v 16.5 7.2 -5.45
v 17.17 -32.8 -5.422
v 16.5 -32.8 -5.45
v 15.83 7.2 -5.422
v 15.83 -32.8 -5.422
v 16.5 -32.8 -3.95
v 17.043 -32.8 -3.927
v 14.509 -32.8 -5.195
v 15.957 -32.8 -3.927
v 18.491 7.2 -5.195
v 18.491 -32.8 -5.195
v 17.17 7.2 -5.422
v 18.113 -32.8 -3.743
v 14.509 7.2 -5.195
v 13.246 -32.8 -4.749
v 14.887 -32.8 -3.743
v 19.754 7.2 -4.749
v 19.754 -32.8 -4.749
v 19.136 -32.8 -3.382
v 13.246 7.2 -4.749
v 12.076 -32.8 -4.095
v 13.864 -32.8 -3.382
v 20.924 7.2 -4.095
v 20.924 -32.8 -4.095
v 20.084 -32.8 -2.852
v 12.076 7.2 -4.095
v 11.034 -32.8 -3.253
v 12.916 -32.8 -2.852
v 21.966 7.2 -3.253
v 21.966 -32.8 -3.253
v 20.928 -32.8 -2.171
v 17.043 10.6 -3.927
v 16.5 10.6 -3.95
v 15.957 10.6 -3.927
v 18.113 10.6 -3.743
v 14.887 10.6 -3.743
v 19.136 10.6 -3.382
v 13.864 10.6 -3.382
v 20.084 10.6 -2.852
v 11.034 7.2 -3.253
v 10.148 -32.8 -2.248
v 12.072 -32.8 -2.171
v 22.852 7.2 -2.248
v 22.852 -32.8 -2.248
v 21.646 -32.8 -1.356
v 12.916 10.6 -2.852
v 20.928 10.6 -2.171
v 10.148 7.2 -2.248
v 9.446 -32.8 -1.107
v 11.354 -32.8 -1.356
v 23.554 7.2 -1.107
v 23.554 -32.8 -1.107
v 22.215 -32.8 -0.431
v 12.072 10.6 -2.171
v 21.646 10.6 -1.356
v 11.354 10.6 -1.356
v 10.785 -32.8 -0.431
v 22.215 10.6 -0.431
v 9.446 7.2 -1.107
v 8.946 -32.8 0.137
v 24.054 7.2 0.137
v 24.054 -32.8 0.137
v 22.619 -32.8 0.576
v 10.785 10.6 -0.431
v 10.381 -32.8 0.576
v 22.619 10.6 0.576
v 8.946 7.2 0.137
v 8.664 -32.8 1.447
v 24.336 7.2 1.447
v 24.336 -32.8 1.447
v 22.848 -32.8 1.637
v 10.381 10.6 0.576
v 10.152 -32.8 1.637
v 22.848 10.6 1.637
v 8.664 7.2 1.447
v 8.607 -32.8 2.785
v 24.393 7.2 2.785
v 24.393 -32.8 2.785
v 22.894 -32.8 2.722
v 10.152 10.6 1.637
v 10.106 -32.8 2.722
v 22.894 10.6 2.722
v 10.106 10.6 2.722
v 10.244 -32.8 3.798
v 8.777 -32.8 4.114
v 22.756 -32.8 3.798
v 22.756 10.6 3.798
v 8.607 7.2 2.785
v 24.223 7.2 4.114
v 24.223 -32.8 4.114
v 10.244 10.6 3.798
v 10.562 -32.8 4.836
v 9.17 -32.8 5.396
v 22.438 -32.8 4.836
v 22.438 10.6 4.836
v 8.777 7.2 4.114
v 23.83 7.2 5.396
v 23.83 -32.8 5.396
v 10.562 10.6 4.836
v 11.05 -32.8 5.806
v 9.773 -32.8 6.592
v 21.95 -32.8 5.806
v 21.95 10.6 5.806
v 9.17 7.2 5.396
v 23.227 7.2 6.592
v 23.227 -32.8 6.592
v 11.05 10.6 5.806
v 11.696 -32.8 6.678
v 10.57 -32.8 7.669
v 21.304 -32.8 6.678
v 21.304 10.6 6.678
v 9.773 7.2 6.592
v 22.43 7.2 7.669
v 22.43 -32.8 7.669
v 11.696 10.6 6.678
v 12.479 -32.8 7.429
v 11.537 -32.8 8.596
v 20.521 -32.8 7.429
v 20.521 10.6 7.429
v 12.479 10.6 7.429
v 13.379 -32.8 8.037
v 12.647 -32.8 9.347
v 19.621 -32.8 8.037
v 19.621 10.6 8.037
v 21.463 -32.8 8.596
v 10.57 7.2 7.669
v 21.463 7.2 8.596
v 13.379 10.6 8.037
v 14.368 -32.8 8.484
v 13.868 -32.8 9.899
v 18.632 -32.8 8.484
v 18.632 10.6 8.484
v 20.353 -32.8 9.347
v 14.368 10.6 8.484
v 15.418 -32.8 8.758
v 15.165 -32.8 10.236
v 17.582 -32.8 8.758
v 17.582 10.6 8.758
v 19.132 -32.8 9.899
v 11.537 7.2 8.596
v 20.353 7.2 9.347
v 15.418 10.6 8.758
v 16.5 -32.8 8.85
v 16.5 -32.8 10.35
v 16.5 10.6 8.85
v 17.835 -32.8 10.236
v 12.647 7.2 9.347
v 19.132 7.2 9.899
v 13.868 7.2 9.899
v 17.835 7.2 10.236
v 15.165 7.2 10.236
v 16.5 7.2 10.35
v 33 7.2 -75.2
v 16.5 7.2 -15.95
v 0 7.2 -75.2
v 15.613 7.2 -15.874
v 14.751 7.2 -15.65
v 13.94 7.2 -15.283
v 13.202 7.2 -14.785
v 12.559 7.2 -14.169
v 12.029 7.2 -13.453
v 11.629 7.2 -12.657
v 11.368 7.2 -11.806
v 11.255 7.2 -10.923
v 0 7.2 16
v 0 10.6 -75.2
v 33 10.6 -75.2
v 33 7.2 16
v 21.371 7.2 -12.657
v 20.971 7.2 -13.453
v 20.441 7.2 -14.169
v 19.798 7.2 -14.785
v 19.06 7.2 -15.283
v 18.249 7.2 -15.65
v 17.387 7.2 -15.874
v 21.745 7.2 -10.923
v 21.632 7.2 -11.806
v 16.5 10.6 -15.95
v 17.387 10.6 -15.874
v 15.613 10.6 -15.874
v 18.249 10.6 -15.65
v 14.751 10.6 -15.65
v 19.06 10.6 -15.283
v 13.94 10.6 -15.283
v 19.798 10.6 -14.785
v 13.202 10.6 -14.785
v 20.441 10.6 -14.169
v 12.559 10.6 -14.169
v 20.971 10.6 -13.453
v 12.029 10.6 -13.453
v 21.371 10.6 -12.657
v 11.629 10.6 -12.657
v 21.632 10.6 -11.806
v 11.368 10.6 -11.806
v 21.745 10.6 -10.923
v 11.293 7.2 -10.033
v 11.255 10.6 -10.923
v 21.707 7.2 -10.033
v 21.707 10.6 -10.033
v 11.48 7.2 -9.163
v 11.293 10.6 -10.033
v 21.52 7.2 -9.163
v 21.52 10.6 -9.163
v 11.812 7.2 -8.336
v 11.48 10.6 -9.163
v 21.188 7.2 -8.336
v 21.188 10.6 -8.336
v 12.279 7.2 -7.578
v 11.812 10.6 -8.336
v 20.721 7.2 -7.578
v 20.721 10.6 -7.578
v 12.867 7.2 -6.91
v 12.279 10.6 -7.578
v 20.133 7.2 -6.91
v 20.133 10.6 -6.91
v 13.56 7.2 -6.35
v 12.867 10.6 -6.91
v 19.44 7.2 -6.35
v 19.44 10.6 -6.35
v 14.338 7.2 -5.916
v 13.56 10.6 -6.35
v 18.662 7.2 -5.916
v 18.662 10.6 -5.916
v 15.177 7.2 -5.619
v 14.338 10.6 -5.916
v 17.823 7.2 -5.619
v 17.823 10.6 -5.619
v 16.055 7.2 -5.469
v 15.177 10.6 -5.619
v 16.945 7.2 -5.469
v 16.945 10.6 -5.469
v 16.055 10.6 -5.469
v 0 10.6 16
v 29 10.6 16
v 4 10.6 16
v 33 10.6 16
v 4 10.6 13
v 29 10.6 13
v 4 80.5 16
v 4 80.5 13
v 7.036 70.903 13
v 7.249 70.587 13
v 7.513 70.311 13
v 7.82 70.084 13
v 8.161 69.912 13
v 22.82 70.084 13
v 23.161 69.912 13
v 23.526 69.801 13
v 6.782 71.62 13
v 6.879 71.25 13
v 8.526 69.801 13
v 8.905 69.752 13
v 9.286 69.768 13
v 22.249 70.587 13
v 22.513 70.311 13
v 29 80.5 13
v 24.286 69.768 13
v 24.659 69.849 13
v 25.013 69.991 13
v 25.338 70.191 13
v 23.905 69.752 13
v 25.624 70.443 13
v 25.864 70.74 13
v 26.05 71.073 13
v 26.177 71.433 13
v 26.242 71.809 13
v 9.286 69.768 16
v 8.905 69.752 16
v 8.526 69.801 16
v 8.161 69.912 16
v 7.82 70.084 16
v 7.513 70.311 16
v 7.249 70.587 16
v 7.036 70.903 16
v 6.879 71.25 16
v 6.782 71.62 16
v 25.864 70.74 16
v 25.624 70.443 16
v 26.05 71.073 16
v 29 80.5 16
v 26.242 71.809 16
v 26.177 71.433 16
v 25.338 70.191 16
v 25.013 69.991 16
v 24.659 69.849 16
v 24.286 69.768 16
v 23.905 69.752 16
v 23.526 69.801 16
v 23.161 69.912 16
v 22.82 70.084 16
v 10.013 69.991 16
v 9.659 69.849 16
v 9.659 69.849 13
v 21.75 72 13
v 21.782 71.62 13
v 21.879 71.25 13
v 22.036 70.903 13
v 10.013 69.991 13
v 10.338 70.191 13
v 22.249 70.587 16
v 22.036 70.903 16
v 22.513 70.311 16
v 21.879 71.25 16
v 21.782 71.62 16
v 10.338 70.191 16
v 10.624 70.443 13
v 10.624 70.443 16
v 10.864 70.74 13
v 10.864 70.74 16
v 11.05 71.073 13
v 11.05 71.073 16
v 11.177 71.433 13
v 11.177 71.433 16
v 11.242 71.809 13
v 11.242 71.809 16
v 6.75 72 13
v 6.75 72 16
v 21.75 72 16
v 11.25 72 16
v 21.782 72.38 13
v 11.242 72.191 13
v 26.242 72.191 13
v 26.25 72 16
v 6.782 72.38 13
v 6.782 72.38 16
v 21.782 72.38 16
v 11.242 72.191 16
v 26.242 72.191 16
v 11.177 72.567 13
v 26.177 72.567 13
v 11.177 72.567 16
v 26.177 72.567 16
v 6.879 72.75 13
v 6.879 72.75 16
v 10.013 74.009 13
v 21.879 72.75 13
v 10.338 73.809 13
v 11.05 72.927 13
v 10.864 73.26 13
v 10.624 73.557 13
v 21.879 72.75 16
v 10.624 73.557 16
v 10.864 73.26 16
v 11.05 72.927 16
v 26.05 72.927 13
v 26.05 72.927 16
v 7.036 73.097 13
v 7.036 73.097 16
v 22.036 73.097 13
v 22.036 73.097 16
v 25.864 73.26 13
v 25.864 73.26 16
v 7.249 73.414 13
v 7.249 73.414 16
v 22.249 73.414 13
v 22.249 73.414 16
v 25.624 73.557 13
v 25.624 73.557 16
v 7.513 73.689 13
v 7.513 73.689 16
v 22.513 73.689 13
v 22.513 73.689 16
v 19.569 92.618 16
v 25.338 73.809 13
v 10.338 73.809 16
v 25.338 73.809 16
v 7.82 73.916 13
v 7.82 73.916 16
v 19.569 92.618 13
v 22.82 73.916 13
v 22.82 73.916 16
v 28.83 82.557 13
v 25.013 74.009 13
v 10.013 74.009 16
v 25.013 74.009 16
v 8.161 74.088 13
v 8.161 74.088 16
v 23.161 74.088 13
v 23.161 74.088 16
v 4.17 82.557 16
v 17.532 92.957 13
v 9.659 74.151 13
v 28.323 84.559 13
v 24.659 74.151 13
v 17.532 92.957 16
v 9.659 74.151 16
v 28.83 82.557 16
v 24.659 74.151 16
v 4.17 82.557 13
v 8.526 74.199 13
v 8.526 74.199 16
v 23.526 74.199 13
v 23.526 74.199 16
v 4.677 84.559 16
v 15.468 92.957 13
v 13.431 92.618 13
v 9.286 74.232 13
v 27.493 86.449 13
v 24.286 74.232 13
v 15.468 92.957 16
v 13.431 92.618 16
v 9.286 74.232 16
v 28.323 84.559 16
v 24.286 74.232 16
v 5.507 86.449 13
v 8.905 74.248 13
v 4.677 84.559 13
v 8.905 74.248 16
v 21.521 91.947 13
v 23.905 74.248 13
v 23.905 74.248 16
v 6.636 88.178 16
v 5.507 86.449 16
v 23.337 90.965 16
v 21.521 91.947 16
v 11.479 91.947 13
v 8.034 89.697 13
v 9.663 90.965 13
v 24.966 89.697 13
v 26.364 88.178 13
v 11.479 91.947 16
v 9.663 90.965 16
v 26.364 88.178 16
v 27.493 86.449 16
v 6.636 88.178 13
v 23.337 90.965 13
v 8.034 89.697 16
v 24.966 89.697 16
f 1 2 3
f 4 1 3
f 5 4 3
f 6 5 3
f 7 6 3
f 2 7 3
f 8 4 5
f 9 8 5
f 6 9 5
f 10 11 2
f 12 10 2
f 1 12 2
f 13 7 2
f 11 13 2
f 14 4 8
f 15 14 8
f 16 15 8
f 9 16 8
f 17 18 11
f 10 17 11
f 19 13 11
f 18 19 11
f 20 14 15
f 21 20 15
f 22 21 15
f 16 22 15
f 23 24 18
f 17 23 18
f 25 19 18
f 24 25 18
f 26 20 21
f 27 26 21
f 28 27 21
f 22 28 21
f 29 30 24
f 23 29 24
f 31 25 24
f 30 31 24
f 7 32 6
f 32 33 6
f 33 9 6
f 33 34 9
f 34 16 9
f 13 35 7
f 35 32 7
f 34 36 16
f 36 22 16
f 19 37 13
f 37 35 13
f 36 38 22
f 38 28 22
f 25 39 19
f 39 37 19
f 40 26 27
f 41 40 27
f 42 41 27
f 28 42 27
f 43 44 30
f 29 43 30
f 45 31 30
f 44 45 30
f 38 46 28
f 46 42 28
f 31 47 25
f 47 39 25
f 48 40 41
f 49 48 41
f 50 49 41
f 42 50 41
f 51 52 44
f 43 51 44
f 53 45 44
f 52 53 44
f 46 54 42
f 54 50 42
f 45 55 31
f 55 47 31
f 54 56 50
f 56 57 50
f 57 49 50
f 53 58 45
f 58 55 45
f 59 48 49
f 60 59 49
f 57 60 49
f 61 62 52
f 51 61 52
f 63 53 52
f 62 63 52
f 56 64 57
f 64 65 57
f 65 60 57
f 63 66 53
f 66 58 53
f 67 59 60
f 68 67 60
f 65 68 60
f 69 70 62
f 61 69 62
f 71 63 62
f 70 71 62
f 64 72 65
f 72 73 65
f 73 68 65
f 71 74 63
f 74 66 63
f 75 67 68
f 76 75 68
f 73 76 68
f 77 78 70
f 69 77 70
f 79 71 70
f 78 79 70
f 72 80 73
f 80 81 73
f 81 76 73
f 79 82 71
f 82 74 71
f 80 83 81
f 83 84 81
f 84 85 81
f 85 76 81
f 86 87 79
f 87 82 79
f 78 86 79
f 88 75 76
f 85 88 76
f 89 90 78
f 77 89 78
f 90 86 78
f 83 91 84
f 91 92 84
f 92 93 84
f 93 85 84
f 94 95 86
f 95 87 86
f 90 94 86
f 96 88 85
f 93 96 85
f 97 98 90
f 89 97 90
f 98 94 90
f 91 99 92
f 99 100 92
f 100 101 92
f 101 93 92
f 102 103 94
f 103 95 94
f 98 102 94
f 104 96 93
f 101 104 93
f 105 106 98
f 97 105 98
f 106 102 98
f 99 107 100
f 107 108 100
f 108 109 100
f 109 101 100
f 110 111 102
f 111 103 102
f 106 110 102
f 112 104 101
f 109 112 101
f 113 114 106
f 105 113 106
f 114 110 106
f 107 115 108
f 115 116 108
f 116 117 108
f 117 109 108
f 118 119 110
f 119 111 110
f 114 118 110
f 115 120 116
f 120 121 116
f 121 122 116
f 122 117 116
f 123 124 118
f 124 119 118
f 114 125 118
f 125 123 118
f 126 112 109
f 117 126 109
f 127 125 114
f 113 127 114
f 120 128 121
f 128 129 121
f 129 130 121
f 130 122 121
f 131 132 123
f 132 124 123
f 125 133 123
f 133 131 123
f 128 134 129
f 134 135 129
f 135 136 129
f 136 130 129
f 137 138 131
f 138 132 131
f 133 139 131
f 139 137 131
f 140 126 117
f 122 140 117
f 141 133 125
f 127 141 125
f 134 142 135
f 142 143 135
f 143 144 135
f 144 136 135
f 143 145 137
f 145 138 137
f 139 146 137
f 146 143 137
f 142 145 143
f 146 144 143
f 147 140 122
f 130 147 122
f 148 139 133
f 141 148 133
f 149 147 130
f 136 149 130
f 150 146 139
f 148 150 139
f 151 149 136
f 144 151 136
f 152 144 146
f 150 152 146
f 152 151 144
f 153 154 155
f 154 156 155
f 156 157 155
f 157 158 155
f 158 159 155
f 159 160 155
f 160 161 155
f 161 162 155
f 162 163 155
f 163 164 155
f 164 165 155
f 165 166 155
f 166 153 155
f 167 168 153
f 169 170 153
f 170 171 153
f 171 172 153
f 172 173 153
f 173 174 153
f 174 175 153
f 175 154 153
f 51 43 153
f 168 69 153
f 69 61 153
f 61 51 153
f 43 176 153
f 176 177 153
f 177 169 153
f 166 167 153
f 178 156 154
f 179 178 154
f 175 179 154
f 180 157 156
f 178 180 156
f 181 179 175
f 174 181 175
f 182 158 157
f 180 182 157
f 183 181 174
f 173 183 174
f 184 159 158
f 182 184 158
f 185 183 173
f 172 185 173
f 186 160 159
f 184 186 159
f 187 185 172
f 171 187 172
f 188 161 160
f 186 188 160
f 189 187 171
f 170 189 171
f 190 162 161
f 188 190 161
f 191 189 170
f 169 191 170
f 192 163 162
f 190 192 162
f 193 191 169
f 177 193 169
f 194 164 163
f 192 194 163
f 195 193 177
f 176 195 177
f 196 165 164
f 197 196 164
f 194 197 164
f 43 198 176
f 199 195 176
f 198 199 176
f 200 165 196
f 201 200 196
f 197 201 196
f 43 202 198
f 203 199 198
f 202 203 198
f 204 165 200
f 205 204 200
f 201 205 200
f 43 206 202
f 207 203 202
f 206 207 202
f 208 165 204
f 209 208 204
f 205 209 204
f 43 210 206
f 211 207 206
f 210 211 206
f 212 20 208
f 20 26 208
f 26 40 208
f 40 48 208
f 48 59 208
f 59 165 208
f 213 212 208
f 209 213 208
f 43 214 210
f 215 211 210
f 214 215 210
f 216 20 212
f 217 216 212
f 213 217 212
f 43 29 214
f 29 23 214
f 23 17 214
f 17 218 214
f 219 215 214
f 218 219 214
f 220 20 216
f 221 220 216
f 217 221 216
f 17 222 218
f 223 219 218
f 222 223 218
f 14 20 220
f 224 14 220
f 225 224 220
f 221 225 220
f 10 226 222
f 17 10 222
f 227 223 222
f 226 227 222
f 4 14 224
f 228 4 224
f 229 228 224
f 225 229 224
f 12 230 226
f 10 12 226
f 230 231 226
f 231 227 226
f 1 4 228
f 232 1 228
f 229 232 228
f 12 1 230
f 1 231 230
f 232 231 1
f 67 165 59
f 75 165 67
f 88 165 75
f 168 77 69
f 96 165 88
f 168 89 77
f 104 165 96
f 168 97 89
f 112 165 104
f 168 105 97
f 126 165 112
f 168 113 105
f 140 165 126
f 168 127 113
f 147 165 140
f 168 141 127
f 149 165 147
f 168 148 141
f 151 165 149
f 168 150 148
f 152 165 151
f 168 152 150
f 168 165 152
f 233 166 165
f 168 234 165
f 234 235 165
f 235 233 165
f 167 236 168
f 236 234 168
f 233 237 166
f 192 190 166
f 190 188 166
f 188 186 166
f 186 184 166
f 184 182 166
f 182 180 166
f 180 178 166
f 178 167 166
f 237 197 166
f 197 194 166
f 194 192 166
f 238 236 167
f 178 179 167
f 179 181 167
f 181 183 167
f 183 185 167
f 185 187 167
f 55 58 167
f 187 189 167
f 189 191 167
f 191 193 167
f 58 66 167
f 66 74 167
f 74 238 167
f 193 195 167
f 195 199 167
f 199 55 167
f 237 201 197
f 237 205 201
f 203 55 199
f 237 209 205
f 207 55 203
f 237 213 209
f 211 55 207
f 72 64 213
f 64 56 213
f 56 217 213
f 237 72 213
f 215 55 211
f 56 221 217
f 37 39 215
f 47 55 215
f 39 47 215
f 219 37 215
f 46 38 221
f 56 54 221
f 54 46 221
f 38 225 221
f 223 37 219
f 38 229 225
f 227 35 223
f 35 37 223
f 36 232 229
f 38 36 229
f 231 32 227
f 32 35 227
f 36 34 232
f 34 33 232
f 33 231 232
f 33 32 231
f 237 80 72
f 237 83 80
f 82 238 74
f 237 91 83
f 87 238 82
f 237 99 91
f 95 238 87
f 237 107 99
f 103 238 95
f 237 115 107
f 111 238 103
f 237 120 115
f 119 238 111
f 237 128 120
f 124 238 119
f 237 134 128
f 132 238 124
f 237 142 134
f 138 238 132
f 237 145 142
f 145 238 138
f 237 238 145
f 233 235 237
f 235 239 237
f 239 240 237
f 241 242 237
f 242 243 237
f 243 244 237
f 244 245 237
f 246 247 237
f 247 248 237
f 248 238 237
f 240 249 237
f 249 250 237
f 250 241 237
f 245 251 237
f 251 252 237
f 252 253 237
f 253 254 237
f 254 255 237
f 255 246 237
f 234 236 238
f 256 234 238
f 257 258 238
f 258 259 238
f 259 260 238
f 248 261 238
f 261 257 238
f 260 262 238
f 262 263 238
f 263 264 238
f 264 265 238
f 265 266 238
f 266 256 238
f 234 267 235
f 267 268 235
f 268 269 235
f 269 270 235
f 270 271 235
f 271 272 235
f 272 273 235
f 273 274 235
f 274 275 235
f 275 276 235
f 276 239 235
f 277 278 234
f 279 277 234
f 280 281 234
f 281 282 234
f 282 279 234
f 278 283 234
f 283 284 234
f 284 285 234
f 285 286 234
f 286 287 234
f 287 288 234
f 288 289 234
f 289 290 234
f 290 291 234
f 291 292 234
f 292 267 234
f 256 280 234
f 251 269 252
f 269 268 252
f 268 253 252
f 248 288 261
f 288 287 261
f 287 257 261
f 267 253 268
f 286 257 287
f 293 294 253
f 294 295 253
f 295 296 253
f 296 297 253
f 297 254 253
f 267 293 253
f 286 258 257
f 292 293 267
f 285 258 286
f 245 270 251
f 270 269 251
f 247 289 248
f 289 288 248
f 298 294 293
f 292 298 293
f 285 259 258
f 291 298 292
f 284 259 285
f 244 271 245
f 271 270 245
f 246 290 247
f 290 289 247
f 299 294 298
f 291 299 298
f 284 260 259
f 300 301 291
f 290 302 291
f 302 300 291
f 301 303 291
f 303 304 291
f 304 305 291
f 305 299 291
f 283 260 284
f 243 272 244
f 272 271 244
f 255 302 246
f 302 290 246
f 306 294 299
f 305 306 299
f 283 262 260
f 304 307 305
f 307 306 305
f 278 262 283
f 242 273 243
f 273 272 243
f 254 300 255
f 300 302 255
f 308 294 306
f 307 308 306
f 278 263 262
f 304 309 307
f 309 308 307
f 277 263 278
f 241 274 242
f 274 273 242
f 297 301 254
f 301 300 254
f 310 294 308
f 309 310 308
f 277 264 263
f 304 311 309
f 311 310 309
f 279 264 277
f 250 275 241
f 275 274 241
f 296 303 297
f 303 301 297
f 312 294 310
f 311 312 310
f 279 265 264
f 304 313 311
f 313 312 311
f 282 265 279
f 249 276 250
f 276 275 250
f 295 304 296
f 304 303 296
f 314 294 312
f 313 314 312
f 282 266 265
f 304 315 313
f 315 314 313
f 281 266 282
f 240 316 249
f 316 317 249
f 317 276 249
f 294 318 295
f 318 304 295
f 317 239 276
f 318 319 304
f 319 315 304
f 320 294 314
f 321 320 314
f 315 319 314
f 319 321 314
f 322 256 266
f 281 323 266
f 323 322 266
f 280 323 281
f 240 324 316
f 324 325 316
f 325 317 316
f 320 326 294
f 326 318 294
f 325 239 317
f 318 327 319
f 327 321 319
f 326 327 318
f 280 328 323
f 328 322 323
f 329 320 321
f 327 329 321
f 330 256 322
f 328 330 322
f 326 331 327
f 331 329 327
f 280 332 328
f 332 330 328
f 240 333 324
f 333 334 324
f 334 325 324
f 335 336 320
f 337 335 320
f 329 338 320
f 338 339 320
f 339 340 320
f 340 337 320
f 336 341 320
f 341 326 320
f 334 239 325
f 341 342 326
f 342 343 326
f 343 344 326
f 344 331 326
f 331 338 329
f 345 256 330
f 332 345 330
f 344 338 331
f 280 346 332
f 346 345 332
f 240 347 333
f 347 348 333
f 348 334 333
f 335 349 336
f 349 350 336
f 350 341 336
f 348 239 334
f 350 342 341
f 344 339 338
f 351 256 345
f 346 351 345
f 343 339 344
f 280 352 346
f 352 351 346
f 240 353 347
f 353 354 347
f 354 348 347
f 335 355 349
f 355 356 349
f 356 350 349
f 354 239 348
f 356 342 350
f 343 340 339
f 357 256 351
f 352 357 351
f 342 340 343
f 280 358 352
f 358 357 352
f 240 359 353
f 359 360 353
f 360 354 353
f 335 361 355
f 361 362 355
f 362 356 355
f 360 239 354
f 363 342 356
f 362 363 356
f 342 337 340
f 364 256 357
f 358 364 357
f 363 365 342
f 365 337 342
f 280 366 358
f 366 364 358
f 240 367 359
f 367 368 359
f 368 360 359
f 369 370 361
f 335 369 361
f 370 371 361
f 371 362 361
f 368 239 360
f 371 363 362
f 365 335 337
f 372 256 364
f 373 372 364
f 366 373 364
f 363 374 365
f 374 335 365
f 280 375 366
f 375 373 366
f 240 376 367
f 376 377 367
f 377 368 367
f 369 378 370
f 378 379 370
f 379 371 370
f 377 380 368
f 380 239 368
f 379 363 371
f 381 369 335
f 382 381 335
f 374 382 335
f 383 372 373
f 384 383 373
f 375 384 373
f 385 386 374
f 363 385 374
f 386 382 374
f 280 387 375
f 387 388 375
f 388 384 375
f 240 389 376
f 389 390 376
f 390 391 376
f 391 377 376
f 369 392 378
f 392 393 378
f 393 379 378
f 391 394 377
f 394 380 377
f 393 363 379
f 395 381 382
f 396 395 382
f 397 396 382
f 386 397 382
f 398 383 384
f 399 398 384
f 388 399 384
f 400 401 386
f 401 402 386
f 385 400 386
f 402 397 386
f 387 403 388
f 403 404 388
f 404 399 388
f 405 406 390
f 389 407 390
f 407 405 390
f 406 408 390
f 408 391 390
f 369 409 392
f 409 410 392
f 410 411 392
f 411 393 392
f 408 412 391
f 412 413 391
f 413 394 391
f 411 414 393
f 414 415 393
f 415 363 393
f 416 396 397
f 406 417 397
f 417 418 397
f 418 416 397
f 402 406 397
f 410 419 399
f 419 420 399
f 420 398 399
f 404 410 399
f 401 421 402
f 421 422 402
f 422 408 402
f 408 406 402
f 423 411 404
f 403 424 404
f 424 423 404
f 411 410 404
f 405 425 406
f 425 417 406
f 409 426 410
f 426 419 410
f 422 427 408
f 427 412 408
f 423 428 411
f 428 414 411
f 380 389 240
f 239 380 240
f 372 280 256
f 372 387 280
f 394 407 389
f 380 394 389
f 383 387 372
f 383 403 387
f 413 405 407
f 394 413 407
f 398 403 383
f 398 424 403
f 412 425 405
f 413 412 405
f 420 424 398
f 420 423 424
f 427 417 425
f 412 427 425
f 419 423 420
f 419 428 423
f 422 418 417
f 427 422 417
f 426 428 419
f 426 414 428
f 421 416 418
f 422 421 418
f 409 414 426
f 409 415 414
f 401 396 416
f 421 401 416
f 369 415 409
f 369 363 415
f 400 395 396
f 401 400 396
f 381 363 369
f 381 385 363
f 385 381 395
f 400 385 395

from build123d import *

# Parameters (mm, degrees)
SKETCH1_W            = 4
SKETCH1_H            = 80.5
BOSS_EXTRUDE1_DEPTH  = 71
BOSS_EXTRUDE2_START  = -4
BOSS_EXTRUDE2_DEPTH  = 4
BOSS_EXTRUDE3_DEPTH  = 34.2
CUT_EXTRUDE1_DEPTH   = 13
CUT_EXTRUDE2_DEPTH   = 13
SKETCH6_R            = 1.7
CUT_EXTRUDE3_DEPTH   = 13
SKETCH7_R            = 3.25
CUT_EXTRUDE4_DEPTH   = 2.5
BOSS_EXTRUDE4_DEPTH  = 44.5
SKETCH10_W           = 46.002383675
SKETCH10_H           = 61.711229379
CUT_EXTRUDE5_DEPTH   = 42
FILLET1_R            = 18
BOSS_EXTRUDE5_DEPTH  = 4
FILLET3_R            = 16.2
FILLET4_R            = 14
CUT_EXTRUDE6_DEPTH   = 10.6
BOSS_EXTRUDE6_START  = 4
BOSS_EXTRUDE6_DEPTH  = 4
CUT_EXTRUDE7_DEPTH   = 148
BOSS_EXTRUDE7_DEPTH  = 3
CUT_EXTRUDE8_DEPTH   = 14
SKETCH17_R           = 2.25
CUT_EXTRUDE9_DEPTH   = 14
SKETCH18_W           = 25
SKETCH18_H           = 92.2
BOSS_EXTRUDE8_DEPTH  = 4
SKETCH19_W           = 4
SKETCH19_H           = 92.2
BOSS_EXTRUDE9_DEPTH  = 4
SKETCH20_R           = 5.25
CUT_EXTRUDE10_DEPTH  = 4
SKETCH21_W           = 33
SKETCH21_H           = 92.2
CUT_EXTRUDE11_DEPTH  = 0.6
SKETCH22_R           = 5.25
CUT_EXTRUDE12_DEPTH  = 3.4
BOSS_EXTRUDE10_DEPTH = 40
SKETCH24_R           = 6.4
CUT_EXTRUDE13_DEPTH  = 3.4
BOSS_EXTRUDE11_DEPTH = 15
SKETCH26_W           = 10
SKETCH26_H           = 1.5
BOSS_EXTRUDE12_DEPTH = 15
CUT_EXTRUDE14_DEPTH  = 15
SKETCH28_W           = 33
SKETCH28_H           = 3.4
CUT_EXTRUDE15_DEPTH  = 1


with BuildPart() as part:
    # Sketch1 → Boss-Extrude1 (new body)
    with BuildSketch(Plane.XY):
        with Locations((2, 40.25)):
            Rectangle(SKETCH1_W, SKETCH1_H)
        with BuildLine():
            Line((0, 80.5), (4, 80.5))
            ThreePointArc((4, 80.5), (16.5, 93), (29, 80.5))
            Line((29, 80.5), (33, 80.5))
            ThreePointArc((33, 80.5), (16.5, 97), (0, 80.5))
        make_face()
        with Locations((31, 40.25)):
            Rectangle(SKETCH1_W, SKETCH1_H)
    extrude(amount=BOSS_EXTRUDE1_DEPTH)

    # Sketch2 → Boss-Extrude2 (add)
    with BuildSketch(Plane.XY.offset(71).offset(BOSS_EXTRUDE2_START)):
        with BuildLine():
            Line((33, 48.5), (0, 48.5))
            Line((0, 48.5), (0, 80.5))
            ThreePointArc((0, 80.5), (16.5, 97), (33, 80.5))
            Line((33, 80.5), (33, 48.5))
        make_face()
    extrude(amount=BOSS_EXTRUDE2_DEPTH)

    # Sketch3 → Boss-Extrude3 (add)
    with BuildSketch(Plane(origin=(0, 0, 67), x_dir=(-1, 0, 0), z_dir=(0, 0, -1))):
        Polygon((-33, 0), (-33, 48.5), (-29, 48.5), (-4, 48.5), (0, 48.5), (0, 0), (-3.837905566, 0), (-4, 44.5), (-29, 44.5), (-29.162094434, 0), align=None)
    extrude(amount=-BOSS_EXTRUDE3_DEPTH)

    # Sketch4 → Cut-Extrude1 (cut)
    with BuildSketch(Plane(origin=(0, 0, 0), x_dir=(-1, 0, 0), z_dir=(0, 0, -1))):
        with BuildLine():
            Line((-4, 80.5), (-4, 0))
            Line((-4, 0), (0, 0))
            Line((0, 0), (0, 80.5))
            ThreePointArc((0, 80.5), (-16.5, 97), (-33, 80.5))
            Line((-33, 80.5), (-33, 0))
            Line((-33, 0), (-29, 0))
            Line((-29, 0), (-29, 80.5))
            ThreePointArc((-29, 80.5), (-16.5, 93), (-4, 80.5))
        make_face()
    extrude(amount=-CUT_EXTRUDE1_DEPTH, mode=Mode.SUBTRACT)

    # Sketch5 → Cut-Extrude2 (cut)
    with BuildSketch(Plane.XY.offset(71)):
        with BuildLine():
            ThreePointArc((26.5, 80.5), (16.5, 90.5), (6.5, 80.5))
            Line((6.5, 80.5), (26.5, 80.5))
        make_face()
        with BuildLine():
            Line((26.5, 80.5), (6.5, 80.5))
            ThreePointArc((6.5, 80.5), (16.5, 70.5), (26.5, 80.5))
        make_face()
    extrude(amount=-CUT_EXTRUDE2_DEPTH, mode=Mode.SUBTRACT)

    # Sketch6 → Cut-Extrude3 (cut)
    with BuildSketch(Plane.XY.offset(71)):
        with Locations((6.5, 70.5)):
            Circle(SKETCH6_R)
        with BuildLine():
            ThreePointArc((28.2, 70.5), (26.5, 72.2), (24.8, 70.5))
            Line((24.8, 70.5), (28.2, 70.5))
        make_face()
        with BuildLine():
            Line((28.2, 70.5), (24.8, 70.5))
            ThreePointArc((24.8, 70.5), (26.5, 68.8), (28.2, 70.5))
        make_face()
    extrude(amount=-CUT_EXTRUDE3_DEPTH, mode=Mode.SUBTRACT)

    # Sketch7 → Cut-Extrude4 (cut)
    with BuildSketch(Plane.XY.offset(71)):
        with Locations((6.5, 70.5)):
            Circle(SKETCH7_R)
        with Locations((26.5, 70.5)):
            Circle(SKETCH7_R)
    extrude(amount=-CUT_EXTRUDE4_DEPTH, mode=Mode.SUBTRACT)

    # Sketch9 → Boss-Extrude4 (add)
    with BuildSketch(Plane.XZ):
        Polygon((29.162094434, 101.2), (29.162094434, 71), (29, 71), (29, 120), align=None)
        Polygon((4, 120), (3.837905566, 101.2), (3.837905566, 71), (4, 71), align=None)
    extrude(amount=-BOSS_EXTRUDE4_DEPTH)

    # Sketch10 → Cut-Extrude5 (cut)
    with BuildSketch(Plane.XY.offset(101.2)):
        with Locations((17.24268837, 24.291112106)):
            Rectangle(SKETCH10_W, SKETCH10_H)
    extrude(amount=CUT_EXTRUDE5_DEPTH, mode=Mode.SUBTRACT)

    # Fillet1
    fillet1_edges = [part.edges().sort_by_distance(p)[0] for p in [
        (16.5, 48.5, 71),
        (16.5, 44.5, 67),
    ]]
    fillet(fillet1_edges, radius=FILLET1_R)

    # Sketch11 → Boss-Extrude5 (add)
    with BuildSketch(Plane.XY.offset(101.2)):
        Polygon((29, 0), (4, 0), (0, 0), (0, 48.5), (33, 48.5), (33, 0), align=None)
    extrude(amount=BOSS_EXTRUDE5_DEPTH)

    # Fillet3
    fillet3_edges = [part.edges().sort_by_distance(p)[0] for p in [
        (16.5, 48.5, 105.2),
    ]]
    fillet(fillet3_edges, radius=FILLET3_R - 0.0001)  # a hair under: the kernel refuses the full size

    # Fillet4
    fillet4_edges = [part.edges().sort_by_distance(p)[0] for p in [
        (16.5, 44.5, 101.2),
    ]]
    fillet(fillet4_edges, radius=FILLET4_R)

    # Sketch12 → Cut-Extrude6 (cut)
    with BuildSketch(Plane.XZ):
        Polygon((4, 13), (4, 101.2), (29, 101.2), (29, 13), (33, 13), (33, 105.2), (0, 105.2), (0, 13), align=None)
    extrude(amount=-CUT_EXTRUDE6_DEPTH, mode=Mode.SUBTRACT)

    # Sketch13 → Boss-Extrude6 (add)
    with BuildSketch(Plane(origin=(0, 0, 13), x_dir=(-1, 0, 0), z_dir=(0, 0, -1)).offset(BOSS_EXTRUDE6_START)):
        with BuildLine():
            Line((-33, 80.5), (-33, 10.6))
            Line((-33, 10.6), (-29, 10.6))
            Line((-29, 10.6), (-29, 80.5))
            ThreePointArc((-29, 80.5), (-16.5, 93), (-4, 80.5))
            Line((-4, 80.5), (-4, 10.6))
            Line((-4, 10.6), (0, 10.6))
            Line((0, 10.6), (0, 80.5))
            ThreePointArc((0, 80.5), (-16.5, 97), (-33, 80.5))
        make_face()
    extrude(amount=-BOSS_EXTRUDE6_DEPTH)

    # Sketch14 → Cut-Extrude7 (cut)
    with BuildSketch(Plane(origin=(0, 0, 13), x_dir=(-1, 0, 0), z_dir=(0, 0, -1))):
        with BuildLine():
            Line((-29, 10.6), (-4, 10.6))
            Line((-4, 10.6), (0, 10.6))
            Line((0, 10.6), (0, 80.5))
            ThreePointArc((0, 80.5), (-16.5, 97), (-33, 80.5))
            Line((-33, 80.5), (-33, 10.6))
            Line((-33, 10.6), (-29, 10.6))
        make_face()
    extrude(amount=-CUT_EXTRUDE7_DEPTH, mode=Mode.SUBTRACT)

    # Sketch16 → Cut-Extrude8 (cut)
    with BuildSketch(Plane(origin=(0, 0, 9), x_dir=(-1, 0, 0), z_dir=(0, 0, -1))):
        with BuildLine():
            Line((-33, 80.5), (-33, 10.6))
            Line((-33, 10.6), (-29, 10.6))
            Line((-29, 10.6), (-29, 80.5))
            ThreePointArc((-29, 80.5), (-16.5, 93), (-4, 80.5))
            Line((-4, 80.5), (-4, 10.6))
            Line((-4, 10.6), (0, 10.6))
            Line((0, 10.6), (0, 80.5))
            ThreePointArc((0, 80.5), (-16.5, 97), (-33, 80.5))
        make_face()
    extrude(amount=-CUT_EXTRUDE8_DEPTH, mode=Mode.SUBTRACT)


with BuildPart() as body_2:
    # Sketch15 → Boss-Extrude7 (new body)
    with BuildSketch(Plane.XY.offset(13)):
        with BuildLine():
            Line((4, 10.6), (29, 10.6))
            Line((29, 10.6), (29, 80.5))
            ThreePointArc((29, 80.5), (16.5, 93), (4, 80.5))
            Line((4, 80.5), (4, 10.6))
        make_face()
    extrude(amount=BOSS_EXTRUDE7_DEPTH)

    # Sketch17 → Cut-Extrude9 (cut)
    with BuildSketch(Plane(origin=(0, 0, 13), x_dir=(-1, 0, 0), z_dir=(0, 0, -1))):
        with Locations((-24, 72)):
            Circle(SKETCH17_R)
        with Locations((-9, 72)):
            Circle(SKETCH17_R)
    extrude(amount=-CUT_EXTRUDE9_DEPTH, mode=Mode.SUBTRACT)

    # Sketch18 → Boss-Extrude8 (add)
    with BuildSketch(Plane.XZ.offset(-10.6)):
        with Locations((16.5, -30.1)):
            Rectangle(SKETCH18_W, SKETCH18_H)
    extrude(amount=BOSS_EXTRUDE8_DEPTH)

    # Sketch19 → Boss-Extrude9 (add)
    with BuildSketch(Plane.XZ.offset(-6.6)):
        with Locations((2, -30.1)):
            Rectangle(SKETCH19_W, SKETCH19_H)
        with Locations((31, -30.1)):
            Rectangle(SKETCH19_W, SKETCH19_H)
    extrude(amount=-BOSS_EXTRUDE9_DEPTH)

    # Sketch20 → Cut-Extrude10 (cut)
    with BuildSketch(Plane.XZ.offset(-6.6)):
        with Locations(Location((16.5, -10.7, 0), (0, 0, 270))):
            Circle(SKETCH20_R)
    extrude(amount=-CUT_EXTRUDE10_DEPTH, mode=Mode.SUBTRACT)

    # Sketch21 → Cut-Extrude11 (cut)
    with BuildSketch(Plane.XZ.offset(-6.6)):
        with Locations((16.5, -30.1)):
            Rectangle(SKETCH21_W, SKETCH21_H)
    extrude(amount=-CUT_EXTRUDE11_DEPTH, mode=Mode.SUBTRACT)

    # Sketch22 → Cut-Extrude12 (cut)
    with BuildSketch(Plane.XZ.offset(-7.2)):
        with Locations(Location((16.5, 1.3, 0), (0, 0, 270))):
            Circle(SKETCH22_R)
    extrude(amount=-CUT_EXTRUDE12_DEPTH, mode=Mode.SUBTRACT)

    # Sketch23 → Boss-Extrude10 (add)
    with BuildSketch(Plane.XZ.offset(-7.2)):
        with BuildLine():
            ThreePointArc((16.5, 10.35), (8.6, 2.45), (16.5, -5.45))
            Line((16.5, -5.45), (16.5, -3.95))
            ThreePointArc((16.5, -3.95), (10.1, 2.45), (16.5, 8.85))
            Line((16.5, 8.85), (16.5, 10.35))
        make_face()
        with BuildLine():
            Line((16.5, -3.95), (16.5, -5.45))
            ThreePointArc((16.5, -5.45), (22.086143571, -3.136143571), (24.4, 2.45))
            ThreePointArc((24.4, 2.45), (22.086143571, 8.036143571), (16.5, 10.35))
            Line((16.5, 10.35), (16.5, 8.85))
            ThreePointArc((16.5, 8.85), (21.0254834, 6.9754834), (22.9, 2.45))
            ThreePointArc((22.9, 2.45), (21.0254834, -2.0754834), (16.5, -3.95))
        make_face()
    extrude(amount=BOSS_EXTRUDE10_DEPTH)

    # Sketch24 → Cut-Extrude13 (cut)
    with BuildSketch(Plane.XZ.offset(-7.2)):
        with Locations(Location((16.5, 2.45, 0), (0, 0, 270))):
            Circle(SKETCH24_R)
    extrude(amount=-CUT_EXTRUDE13_DEPTH, mode=Mode.SUBTRACT)

    # Sketch25 → Boss-Extrude11 (add)
    with BuildSketch(Plane(origin=(0, 10.6, 0), x_dir=(1, 0, 0), z_dir=(0, 1, 0))):
        Polygon((26.5, 72.7), (6.5, 72.7), (6.5, 74.7), (16.5, 74.7), (26.5, 74.7), align=None)
    extrude(amount=BOSS_EXTRUDE11_DEPTH)

    # Sketch26 → Boss-Extrude12 (add)
    with BuildSketch(Plane(origin=(0, 10.6, 0), x_dir=(1, 0, 0), z_dir=(0, 1, 0))):
        with Locations((16.5, 75.45)):
            Rectangle(SKETCH26_W, SKETCH26_H)
    extrude(amount=BOSS_EXTRUDE12_DEPTH)

    # Sketch27 → Cut-Extrude14 (cut)
    with BuildSketch(Plane(origin=(0, 10.6, 0), x_dir=(1, 0, 0), z_dir=(0, 1, 0))):
        Polygon((6.5, 72.7), (26.5, 72.7), (26.5, 74.7), (21.5, 74.7), (21.5, 76.2), (11.5, 76.2), (11.5, 74.7), (6.5, 74.7), align=None)
    extrude(amount=CUT_EXTRUDE14_DEPTH, mode=Mode.SUBTRACT)

    # Sketch28 → Cut-Extrude15 (cut)
    with BuildSketch(Plane(origin=(0, 0, -76.2), x_dir=(-1, 0, 0), z_dir=(0, 0, -1))):
        with Locations((-16.5, 8.9)):
            Rectangle(SKETCH28_W, SKETCH28_H)
    extrude(amount=-CUT_EXTRUDE15_DEPTH, mode=Mode.SUBTRACT)


solid = body_2.part
